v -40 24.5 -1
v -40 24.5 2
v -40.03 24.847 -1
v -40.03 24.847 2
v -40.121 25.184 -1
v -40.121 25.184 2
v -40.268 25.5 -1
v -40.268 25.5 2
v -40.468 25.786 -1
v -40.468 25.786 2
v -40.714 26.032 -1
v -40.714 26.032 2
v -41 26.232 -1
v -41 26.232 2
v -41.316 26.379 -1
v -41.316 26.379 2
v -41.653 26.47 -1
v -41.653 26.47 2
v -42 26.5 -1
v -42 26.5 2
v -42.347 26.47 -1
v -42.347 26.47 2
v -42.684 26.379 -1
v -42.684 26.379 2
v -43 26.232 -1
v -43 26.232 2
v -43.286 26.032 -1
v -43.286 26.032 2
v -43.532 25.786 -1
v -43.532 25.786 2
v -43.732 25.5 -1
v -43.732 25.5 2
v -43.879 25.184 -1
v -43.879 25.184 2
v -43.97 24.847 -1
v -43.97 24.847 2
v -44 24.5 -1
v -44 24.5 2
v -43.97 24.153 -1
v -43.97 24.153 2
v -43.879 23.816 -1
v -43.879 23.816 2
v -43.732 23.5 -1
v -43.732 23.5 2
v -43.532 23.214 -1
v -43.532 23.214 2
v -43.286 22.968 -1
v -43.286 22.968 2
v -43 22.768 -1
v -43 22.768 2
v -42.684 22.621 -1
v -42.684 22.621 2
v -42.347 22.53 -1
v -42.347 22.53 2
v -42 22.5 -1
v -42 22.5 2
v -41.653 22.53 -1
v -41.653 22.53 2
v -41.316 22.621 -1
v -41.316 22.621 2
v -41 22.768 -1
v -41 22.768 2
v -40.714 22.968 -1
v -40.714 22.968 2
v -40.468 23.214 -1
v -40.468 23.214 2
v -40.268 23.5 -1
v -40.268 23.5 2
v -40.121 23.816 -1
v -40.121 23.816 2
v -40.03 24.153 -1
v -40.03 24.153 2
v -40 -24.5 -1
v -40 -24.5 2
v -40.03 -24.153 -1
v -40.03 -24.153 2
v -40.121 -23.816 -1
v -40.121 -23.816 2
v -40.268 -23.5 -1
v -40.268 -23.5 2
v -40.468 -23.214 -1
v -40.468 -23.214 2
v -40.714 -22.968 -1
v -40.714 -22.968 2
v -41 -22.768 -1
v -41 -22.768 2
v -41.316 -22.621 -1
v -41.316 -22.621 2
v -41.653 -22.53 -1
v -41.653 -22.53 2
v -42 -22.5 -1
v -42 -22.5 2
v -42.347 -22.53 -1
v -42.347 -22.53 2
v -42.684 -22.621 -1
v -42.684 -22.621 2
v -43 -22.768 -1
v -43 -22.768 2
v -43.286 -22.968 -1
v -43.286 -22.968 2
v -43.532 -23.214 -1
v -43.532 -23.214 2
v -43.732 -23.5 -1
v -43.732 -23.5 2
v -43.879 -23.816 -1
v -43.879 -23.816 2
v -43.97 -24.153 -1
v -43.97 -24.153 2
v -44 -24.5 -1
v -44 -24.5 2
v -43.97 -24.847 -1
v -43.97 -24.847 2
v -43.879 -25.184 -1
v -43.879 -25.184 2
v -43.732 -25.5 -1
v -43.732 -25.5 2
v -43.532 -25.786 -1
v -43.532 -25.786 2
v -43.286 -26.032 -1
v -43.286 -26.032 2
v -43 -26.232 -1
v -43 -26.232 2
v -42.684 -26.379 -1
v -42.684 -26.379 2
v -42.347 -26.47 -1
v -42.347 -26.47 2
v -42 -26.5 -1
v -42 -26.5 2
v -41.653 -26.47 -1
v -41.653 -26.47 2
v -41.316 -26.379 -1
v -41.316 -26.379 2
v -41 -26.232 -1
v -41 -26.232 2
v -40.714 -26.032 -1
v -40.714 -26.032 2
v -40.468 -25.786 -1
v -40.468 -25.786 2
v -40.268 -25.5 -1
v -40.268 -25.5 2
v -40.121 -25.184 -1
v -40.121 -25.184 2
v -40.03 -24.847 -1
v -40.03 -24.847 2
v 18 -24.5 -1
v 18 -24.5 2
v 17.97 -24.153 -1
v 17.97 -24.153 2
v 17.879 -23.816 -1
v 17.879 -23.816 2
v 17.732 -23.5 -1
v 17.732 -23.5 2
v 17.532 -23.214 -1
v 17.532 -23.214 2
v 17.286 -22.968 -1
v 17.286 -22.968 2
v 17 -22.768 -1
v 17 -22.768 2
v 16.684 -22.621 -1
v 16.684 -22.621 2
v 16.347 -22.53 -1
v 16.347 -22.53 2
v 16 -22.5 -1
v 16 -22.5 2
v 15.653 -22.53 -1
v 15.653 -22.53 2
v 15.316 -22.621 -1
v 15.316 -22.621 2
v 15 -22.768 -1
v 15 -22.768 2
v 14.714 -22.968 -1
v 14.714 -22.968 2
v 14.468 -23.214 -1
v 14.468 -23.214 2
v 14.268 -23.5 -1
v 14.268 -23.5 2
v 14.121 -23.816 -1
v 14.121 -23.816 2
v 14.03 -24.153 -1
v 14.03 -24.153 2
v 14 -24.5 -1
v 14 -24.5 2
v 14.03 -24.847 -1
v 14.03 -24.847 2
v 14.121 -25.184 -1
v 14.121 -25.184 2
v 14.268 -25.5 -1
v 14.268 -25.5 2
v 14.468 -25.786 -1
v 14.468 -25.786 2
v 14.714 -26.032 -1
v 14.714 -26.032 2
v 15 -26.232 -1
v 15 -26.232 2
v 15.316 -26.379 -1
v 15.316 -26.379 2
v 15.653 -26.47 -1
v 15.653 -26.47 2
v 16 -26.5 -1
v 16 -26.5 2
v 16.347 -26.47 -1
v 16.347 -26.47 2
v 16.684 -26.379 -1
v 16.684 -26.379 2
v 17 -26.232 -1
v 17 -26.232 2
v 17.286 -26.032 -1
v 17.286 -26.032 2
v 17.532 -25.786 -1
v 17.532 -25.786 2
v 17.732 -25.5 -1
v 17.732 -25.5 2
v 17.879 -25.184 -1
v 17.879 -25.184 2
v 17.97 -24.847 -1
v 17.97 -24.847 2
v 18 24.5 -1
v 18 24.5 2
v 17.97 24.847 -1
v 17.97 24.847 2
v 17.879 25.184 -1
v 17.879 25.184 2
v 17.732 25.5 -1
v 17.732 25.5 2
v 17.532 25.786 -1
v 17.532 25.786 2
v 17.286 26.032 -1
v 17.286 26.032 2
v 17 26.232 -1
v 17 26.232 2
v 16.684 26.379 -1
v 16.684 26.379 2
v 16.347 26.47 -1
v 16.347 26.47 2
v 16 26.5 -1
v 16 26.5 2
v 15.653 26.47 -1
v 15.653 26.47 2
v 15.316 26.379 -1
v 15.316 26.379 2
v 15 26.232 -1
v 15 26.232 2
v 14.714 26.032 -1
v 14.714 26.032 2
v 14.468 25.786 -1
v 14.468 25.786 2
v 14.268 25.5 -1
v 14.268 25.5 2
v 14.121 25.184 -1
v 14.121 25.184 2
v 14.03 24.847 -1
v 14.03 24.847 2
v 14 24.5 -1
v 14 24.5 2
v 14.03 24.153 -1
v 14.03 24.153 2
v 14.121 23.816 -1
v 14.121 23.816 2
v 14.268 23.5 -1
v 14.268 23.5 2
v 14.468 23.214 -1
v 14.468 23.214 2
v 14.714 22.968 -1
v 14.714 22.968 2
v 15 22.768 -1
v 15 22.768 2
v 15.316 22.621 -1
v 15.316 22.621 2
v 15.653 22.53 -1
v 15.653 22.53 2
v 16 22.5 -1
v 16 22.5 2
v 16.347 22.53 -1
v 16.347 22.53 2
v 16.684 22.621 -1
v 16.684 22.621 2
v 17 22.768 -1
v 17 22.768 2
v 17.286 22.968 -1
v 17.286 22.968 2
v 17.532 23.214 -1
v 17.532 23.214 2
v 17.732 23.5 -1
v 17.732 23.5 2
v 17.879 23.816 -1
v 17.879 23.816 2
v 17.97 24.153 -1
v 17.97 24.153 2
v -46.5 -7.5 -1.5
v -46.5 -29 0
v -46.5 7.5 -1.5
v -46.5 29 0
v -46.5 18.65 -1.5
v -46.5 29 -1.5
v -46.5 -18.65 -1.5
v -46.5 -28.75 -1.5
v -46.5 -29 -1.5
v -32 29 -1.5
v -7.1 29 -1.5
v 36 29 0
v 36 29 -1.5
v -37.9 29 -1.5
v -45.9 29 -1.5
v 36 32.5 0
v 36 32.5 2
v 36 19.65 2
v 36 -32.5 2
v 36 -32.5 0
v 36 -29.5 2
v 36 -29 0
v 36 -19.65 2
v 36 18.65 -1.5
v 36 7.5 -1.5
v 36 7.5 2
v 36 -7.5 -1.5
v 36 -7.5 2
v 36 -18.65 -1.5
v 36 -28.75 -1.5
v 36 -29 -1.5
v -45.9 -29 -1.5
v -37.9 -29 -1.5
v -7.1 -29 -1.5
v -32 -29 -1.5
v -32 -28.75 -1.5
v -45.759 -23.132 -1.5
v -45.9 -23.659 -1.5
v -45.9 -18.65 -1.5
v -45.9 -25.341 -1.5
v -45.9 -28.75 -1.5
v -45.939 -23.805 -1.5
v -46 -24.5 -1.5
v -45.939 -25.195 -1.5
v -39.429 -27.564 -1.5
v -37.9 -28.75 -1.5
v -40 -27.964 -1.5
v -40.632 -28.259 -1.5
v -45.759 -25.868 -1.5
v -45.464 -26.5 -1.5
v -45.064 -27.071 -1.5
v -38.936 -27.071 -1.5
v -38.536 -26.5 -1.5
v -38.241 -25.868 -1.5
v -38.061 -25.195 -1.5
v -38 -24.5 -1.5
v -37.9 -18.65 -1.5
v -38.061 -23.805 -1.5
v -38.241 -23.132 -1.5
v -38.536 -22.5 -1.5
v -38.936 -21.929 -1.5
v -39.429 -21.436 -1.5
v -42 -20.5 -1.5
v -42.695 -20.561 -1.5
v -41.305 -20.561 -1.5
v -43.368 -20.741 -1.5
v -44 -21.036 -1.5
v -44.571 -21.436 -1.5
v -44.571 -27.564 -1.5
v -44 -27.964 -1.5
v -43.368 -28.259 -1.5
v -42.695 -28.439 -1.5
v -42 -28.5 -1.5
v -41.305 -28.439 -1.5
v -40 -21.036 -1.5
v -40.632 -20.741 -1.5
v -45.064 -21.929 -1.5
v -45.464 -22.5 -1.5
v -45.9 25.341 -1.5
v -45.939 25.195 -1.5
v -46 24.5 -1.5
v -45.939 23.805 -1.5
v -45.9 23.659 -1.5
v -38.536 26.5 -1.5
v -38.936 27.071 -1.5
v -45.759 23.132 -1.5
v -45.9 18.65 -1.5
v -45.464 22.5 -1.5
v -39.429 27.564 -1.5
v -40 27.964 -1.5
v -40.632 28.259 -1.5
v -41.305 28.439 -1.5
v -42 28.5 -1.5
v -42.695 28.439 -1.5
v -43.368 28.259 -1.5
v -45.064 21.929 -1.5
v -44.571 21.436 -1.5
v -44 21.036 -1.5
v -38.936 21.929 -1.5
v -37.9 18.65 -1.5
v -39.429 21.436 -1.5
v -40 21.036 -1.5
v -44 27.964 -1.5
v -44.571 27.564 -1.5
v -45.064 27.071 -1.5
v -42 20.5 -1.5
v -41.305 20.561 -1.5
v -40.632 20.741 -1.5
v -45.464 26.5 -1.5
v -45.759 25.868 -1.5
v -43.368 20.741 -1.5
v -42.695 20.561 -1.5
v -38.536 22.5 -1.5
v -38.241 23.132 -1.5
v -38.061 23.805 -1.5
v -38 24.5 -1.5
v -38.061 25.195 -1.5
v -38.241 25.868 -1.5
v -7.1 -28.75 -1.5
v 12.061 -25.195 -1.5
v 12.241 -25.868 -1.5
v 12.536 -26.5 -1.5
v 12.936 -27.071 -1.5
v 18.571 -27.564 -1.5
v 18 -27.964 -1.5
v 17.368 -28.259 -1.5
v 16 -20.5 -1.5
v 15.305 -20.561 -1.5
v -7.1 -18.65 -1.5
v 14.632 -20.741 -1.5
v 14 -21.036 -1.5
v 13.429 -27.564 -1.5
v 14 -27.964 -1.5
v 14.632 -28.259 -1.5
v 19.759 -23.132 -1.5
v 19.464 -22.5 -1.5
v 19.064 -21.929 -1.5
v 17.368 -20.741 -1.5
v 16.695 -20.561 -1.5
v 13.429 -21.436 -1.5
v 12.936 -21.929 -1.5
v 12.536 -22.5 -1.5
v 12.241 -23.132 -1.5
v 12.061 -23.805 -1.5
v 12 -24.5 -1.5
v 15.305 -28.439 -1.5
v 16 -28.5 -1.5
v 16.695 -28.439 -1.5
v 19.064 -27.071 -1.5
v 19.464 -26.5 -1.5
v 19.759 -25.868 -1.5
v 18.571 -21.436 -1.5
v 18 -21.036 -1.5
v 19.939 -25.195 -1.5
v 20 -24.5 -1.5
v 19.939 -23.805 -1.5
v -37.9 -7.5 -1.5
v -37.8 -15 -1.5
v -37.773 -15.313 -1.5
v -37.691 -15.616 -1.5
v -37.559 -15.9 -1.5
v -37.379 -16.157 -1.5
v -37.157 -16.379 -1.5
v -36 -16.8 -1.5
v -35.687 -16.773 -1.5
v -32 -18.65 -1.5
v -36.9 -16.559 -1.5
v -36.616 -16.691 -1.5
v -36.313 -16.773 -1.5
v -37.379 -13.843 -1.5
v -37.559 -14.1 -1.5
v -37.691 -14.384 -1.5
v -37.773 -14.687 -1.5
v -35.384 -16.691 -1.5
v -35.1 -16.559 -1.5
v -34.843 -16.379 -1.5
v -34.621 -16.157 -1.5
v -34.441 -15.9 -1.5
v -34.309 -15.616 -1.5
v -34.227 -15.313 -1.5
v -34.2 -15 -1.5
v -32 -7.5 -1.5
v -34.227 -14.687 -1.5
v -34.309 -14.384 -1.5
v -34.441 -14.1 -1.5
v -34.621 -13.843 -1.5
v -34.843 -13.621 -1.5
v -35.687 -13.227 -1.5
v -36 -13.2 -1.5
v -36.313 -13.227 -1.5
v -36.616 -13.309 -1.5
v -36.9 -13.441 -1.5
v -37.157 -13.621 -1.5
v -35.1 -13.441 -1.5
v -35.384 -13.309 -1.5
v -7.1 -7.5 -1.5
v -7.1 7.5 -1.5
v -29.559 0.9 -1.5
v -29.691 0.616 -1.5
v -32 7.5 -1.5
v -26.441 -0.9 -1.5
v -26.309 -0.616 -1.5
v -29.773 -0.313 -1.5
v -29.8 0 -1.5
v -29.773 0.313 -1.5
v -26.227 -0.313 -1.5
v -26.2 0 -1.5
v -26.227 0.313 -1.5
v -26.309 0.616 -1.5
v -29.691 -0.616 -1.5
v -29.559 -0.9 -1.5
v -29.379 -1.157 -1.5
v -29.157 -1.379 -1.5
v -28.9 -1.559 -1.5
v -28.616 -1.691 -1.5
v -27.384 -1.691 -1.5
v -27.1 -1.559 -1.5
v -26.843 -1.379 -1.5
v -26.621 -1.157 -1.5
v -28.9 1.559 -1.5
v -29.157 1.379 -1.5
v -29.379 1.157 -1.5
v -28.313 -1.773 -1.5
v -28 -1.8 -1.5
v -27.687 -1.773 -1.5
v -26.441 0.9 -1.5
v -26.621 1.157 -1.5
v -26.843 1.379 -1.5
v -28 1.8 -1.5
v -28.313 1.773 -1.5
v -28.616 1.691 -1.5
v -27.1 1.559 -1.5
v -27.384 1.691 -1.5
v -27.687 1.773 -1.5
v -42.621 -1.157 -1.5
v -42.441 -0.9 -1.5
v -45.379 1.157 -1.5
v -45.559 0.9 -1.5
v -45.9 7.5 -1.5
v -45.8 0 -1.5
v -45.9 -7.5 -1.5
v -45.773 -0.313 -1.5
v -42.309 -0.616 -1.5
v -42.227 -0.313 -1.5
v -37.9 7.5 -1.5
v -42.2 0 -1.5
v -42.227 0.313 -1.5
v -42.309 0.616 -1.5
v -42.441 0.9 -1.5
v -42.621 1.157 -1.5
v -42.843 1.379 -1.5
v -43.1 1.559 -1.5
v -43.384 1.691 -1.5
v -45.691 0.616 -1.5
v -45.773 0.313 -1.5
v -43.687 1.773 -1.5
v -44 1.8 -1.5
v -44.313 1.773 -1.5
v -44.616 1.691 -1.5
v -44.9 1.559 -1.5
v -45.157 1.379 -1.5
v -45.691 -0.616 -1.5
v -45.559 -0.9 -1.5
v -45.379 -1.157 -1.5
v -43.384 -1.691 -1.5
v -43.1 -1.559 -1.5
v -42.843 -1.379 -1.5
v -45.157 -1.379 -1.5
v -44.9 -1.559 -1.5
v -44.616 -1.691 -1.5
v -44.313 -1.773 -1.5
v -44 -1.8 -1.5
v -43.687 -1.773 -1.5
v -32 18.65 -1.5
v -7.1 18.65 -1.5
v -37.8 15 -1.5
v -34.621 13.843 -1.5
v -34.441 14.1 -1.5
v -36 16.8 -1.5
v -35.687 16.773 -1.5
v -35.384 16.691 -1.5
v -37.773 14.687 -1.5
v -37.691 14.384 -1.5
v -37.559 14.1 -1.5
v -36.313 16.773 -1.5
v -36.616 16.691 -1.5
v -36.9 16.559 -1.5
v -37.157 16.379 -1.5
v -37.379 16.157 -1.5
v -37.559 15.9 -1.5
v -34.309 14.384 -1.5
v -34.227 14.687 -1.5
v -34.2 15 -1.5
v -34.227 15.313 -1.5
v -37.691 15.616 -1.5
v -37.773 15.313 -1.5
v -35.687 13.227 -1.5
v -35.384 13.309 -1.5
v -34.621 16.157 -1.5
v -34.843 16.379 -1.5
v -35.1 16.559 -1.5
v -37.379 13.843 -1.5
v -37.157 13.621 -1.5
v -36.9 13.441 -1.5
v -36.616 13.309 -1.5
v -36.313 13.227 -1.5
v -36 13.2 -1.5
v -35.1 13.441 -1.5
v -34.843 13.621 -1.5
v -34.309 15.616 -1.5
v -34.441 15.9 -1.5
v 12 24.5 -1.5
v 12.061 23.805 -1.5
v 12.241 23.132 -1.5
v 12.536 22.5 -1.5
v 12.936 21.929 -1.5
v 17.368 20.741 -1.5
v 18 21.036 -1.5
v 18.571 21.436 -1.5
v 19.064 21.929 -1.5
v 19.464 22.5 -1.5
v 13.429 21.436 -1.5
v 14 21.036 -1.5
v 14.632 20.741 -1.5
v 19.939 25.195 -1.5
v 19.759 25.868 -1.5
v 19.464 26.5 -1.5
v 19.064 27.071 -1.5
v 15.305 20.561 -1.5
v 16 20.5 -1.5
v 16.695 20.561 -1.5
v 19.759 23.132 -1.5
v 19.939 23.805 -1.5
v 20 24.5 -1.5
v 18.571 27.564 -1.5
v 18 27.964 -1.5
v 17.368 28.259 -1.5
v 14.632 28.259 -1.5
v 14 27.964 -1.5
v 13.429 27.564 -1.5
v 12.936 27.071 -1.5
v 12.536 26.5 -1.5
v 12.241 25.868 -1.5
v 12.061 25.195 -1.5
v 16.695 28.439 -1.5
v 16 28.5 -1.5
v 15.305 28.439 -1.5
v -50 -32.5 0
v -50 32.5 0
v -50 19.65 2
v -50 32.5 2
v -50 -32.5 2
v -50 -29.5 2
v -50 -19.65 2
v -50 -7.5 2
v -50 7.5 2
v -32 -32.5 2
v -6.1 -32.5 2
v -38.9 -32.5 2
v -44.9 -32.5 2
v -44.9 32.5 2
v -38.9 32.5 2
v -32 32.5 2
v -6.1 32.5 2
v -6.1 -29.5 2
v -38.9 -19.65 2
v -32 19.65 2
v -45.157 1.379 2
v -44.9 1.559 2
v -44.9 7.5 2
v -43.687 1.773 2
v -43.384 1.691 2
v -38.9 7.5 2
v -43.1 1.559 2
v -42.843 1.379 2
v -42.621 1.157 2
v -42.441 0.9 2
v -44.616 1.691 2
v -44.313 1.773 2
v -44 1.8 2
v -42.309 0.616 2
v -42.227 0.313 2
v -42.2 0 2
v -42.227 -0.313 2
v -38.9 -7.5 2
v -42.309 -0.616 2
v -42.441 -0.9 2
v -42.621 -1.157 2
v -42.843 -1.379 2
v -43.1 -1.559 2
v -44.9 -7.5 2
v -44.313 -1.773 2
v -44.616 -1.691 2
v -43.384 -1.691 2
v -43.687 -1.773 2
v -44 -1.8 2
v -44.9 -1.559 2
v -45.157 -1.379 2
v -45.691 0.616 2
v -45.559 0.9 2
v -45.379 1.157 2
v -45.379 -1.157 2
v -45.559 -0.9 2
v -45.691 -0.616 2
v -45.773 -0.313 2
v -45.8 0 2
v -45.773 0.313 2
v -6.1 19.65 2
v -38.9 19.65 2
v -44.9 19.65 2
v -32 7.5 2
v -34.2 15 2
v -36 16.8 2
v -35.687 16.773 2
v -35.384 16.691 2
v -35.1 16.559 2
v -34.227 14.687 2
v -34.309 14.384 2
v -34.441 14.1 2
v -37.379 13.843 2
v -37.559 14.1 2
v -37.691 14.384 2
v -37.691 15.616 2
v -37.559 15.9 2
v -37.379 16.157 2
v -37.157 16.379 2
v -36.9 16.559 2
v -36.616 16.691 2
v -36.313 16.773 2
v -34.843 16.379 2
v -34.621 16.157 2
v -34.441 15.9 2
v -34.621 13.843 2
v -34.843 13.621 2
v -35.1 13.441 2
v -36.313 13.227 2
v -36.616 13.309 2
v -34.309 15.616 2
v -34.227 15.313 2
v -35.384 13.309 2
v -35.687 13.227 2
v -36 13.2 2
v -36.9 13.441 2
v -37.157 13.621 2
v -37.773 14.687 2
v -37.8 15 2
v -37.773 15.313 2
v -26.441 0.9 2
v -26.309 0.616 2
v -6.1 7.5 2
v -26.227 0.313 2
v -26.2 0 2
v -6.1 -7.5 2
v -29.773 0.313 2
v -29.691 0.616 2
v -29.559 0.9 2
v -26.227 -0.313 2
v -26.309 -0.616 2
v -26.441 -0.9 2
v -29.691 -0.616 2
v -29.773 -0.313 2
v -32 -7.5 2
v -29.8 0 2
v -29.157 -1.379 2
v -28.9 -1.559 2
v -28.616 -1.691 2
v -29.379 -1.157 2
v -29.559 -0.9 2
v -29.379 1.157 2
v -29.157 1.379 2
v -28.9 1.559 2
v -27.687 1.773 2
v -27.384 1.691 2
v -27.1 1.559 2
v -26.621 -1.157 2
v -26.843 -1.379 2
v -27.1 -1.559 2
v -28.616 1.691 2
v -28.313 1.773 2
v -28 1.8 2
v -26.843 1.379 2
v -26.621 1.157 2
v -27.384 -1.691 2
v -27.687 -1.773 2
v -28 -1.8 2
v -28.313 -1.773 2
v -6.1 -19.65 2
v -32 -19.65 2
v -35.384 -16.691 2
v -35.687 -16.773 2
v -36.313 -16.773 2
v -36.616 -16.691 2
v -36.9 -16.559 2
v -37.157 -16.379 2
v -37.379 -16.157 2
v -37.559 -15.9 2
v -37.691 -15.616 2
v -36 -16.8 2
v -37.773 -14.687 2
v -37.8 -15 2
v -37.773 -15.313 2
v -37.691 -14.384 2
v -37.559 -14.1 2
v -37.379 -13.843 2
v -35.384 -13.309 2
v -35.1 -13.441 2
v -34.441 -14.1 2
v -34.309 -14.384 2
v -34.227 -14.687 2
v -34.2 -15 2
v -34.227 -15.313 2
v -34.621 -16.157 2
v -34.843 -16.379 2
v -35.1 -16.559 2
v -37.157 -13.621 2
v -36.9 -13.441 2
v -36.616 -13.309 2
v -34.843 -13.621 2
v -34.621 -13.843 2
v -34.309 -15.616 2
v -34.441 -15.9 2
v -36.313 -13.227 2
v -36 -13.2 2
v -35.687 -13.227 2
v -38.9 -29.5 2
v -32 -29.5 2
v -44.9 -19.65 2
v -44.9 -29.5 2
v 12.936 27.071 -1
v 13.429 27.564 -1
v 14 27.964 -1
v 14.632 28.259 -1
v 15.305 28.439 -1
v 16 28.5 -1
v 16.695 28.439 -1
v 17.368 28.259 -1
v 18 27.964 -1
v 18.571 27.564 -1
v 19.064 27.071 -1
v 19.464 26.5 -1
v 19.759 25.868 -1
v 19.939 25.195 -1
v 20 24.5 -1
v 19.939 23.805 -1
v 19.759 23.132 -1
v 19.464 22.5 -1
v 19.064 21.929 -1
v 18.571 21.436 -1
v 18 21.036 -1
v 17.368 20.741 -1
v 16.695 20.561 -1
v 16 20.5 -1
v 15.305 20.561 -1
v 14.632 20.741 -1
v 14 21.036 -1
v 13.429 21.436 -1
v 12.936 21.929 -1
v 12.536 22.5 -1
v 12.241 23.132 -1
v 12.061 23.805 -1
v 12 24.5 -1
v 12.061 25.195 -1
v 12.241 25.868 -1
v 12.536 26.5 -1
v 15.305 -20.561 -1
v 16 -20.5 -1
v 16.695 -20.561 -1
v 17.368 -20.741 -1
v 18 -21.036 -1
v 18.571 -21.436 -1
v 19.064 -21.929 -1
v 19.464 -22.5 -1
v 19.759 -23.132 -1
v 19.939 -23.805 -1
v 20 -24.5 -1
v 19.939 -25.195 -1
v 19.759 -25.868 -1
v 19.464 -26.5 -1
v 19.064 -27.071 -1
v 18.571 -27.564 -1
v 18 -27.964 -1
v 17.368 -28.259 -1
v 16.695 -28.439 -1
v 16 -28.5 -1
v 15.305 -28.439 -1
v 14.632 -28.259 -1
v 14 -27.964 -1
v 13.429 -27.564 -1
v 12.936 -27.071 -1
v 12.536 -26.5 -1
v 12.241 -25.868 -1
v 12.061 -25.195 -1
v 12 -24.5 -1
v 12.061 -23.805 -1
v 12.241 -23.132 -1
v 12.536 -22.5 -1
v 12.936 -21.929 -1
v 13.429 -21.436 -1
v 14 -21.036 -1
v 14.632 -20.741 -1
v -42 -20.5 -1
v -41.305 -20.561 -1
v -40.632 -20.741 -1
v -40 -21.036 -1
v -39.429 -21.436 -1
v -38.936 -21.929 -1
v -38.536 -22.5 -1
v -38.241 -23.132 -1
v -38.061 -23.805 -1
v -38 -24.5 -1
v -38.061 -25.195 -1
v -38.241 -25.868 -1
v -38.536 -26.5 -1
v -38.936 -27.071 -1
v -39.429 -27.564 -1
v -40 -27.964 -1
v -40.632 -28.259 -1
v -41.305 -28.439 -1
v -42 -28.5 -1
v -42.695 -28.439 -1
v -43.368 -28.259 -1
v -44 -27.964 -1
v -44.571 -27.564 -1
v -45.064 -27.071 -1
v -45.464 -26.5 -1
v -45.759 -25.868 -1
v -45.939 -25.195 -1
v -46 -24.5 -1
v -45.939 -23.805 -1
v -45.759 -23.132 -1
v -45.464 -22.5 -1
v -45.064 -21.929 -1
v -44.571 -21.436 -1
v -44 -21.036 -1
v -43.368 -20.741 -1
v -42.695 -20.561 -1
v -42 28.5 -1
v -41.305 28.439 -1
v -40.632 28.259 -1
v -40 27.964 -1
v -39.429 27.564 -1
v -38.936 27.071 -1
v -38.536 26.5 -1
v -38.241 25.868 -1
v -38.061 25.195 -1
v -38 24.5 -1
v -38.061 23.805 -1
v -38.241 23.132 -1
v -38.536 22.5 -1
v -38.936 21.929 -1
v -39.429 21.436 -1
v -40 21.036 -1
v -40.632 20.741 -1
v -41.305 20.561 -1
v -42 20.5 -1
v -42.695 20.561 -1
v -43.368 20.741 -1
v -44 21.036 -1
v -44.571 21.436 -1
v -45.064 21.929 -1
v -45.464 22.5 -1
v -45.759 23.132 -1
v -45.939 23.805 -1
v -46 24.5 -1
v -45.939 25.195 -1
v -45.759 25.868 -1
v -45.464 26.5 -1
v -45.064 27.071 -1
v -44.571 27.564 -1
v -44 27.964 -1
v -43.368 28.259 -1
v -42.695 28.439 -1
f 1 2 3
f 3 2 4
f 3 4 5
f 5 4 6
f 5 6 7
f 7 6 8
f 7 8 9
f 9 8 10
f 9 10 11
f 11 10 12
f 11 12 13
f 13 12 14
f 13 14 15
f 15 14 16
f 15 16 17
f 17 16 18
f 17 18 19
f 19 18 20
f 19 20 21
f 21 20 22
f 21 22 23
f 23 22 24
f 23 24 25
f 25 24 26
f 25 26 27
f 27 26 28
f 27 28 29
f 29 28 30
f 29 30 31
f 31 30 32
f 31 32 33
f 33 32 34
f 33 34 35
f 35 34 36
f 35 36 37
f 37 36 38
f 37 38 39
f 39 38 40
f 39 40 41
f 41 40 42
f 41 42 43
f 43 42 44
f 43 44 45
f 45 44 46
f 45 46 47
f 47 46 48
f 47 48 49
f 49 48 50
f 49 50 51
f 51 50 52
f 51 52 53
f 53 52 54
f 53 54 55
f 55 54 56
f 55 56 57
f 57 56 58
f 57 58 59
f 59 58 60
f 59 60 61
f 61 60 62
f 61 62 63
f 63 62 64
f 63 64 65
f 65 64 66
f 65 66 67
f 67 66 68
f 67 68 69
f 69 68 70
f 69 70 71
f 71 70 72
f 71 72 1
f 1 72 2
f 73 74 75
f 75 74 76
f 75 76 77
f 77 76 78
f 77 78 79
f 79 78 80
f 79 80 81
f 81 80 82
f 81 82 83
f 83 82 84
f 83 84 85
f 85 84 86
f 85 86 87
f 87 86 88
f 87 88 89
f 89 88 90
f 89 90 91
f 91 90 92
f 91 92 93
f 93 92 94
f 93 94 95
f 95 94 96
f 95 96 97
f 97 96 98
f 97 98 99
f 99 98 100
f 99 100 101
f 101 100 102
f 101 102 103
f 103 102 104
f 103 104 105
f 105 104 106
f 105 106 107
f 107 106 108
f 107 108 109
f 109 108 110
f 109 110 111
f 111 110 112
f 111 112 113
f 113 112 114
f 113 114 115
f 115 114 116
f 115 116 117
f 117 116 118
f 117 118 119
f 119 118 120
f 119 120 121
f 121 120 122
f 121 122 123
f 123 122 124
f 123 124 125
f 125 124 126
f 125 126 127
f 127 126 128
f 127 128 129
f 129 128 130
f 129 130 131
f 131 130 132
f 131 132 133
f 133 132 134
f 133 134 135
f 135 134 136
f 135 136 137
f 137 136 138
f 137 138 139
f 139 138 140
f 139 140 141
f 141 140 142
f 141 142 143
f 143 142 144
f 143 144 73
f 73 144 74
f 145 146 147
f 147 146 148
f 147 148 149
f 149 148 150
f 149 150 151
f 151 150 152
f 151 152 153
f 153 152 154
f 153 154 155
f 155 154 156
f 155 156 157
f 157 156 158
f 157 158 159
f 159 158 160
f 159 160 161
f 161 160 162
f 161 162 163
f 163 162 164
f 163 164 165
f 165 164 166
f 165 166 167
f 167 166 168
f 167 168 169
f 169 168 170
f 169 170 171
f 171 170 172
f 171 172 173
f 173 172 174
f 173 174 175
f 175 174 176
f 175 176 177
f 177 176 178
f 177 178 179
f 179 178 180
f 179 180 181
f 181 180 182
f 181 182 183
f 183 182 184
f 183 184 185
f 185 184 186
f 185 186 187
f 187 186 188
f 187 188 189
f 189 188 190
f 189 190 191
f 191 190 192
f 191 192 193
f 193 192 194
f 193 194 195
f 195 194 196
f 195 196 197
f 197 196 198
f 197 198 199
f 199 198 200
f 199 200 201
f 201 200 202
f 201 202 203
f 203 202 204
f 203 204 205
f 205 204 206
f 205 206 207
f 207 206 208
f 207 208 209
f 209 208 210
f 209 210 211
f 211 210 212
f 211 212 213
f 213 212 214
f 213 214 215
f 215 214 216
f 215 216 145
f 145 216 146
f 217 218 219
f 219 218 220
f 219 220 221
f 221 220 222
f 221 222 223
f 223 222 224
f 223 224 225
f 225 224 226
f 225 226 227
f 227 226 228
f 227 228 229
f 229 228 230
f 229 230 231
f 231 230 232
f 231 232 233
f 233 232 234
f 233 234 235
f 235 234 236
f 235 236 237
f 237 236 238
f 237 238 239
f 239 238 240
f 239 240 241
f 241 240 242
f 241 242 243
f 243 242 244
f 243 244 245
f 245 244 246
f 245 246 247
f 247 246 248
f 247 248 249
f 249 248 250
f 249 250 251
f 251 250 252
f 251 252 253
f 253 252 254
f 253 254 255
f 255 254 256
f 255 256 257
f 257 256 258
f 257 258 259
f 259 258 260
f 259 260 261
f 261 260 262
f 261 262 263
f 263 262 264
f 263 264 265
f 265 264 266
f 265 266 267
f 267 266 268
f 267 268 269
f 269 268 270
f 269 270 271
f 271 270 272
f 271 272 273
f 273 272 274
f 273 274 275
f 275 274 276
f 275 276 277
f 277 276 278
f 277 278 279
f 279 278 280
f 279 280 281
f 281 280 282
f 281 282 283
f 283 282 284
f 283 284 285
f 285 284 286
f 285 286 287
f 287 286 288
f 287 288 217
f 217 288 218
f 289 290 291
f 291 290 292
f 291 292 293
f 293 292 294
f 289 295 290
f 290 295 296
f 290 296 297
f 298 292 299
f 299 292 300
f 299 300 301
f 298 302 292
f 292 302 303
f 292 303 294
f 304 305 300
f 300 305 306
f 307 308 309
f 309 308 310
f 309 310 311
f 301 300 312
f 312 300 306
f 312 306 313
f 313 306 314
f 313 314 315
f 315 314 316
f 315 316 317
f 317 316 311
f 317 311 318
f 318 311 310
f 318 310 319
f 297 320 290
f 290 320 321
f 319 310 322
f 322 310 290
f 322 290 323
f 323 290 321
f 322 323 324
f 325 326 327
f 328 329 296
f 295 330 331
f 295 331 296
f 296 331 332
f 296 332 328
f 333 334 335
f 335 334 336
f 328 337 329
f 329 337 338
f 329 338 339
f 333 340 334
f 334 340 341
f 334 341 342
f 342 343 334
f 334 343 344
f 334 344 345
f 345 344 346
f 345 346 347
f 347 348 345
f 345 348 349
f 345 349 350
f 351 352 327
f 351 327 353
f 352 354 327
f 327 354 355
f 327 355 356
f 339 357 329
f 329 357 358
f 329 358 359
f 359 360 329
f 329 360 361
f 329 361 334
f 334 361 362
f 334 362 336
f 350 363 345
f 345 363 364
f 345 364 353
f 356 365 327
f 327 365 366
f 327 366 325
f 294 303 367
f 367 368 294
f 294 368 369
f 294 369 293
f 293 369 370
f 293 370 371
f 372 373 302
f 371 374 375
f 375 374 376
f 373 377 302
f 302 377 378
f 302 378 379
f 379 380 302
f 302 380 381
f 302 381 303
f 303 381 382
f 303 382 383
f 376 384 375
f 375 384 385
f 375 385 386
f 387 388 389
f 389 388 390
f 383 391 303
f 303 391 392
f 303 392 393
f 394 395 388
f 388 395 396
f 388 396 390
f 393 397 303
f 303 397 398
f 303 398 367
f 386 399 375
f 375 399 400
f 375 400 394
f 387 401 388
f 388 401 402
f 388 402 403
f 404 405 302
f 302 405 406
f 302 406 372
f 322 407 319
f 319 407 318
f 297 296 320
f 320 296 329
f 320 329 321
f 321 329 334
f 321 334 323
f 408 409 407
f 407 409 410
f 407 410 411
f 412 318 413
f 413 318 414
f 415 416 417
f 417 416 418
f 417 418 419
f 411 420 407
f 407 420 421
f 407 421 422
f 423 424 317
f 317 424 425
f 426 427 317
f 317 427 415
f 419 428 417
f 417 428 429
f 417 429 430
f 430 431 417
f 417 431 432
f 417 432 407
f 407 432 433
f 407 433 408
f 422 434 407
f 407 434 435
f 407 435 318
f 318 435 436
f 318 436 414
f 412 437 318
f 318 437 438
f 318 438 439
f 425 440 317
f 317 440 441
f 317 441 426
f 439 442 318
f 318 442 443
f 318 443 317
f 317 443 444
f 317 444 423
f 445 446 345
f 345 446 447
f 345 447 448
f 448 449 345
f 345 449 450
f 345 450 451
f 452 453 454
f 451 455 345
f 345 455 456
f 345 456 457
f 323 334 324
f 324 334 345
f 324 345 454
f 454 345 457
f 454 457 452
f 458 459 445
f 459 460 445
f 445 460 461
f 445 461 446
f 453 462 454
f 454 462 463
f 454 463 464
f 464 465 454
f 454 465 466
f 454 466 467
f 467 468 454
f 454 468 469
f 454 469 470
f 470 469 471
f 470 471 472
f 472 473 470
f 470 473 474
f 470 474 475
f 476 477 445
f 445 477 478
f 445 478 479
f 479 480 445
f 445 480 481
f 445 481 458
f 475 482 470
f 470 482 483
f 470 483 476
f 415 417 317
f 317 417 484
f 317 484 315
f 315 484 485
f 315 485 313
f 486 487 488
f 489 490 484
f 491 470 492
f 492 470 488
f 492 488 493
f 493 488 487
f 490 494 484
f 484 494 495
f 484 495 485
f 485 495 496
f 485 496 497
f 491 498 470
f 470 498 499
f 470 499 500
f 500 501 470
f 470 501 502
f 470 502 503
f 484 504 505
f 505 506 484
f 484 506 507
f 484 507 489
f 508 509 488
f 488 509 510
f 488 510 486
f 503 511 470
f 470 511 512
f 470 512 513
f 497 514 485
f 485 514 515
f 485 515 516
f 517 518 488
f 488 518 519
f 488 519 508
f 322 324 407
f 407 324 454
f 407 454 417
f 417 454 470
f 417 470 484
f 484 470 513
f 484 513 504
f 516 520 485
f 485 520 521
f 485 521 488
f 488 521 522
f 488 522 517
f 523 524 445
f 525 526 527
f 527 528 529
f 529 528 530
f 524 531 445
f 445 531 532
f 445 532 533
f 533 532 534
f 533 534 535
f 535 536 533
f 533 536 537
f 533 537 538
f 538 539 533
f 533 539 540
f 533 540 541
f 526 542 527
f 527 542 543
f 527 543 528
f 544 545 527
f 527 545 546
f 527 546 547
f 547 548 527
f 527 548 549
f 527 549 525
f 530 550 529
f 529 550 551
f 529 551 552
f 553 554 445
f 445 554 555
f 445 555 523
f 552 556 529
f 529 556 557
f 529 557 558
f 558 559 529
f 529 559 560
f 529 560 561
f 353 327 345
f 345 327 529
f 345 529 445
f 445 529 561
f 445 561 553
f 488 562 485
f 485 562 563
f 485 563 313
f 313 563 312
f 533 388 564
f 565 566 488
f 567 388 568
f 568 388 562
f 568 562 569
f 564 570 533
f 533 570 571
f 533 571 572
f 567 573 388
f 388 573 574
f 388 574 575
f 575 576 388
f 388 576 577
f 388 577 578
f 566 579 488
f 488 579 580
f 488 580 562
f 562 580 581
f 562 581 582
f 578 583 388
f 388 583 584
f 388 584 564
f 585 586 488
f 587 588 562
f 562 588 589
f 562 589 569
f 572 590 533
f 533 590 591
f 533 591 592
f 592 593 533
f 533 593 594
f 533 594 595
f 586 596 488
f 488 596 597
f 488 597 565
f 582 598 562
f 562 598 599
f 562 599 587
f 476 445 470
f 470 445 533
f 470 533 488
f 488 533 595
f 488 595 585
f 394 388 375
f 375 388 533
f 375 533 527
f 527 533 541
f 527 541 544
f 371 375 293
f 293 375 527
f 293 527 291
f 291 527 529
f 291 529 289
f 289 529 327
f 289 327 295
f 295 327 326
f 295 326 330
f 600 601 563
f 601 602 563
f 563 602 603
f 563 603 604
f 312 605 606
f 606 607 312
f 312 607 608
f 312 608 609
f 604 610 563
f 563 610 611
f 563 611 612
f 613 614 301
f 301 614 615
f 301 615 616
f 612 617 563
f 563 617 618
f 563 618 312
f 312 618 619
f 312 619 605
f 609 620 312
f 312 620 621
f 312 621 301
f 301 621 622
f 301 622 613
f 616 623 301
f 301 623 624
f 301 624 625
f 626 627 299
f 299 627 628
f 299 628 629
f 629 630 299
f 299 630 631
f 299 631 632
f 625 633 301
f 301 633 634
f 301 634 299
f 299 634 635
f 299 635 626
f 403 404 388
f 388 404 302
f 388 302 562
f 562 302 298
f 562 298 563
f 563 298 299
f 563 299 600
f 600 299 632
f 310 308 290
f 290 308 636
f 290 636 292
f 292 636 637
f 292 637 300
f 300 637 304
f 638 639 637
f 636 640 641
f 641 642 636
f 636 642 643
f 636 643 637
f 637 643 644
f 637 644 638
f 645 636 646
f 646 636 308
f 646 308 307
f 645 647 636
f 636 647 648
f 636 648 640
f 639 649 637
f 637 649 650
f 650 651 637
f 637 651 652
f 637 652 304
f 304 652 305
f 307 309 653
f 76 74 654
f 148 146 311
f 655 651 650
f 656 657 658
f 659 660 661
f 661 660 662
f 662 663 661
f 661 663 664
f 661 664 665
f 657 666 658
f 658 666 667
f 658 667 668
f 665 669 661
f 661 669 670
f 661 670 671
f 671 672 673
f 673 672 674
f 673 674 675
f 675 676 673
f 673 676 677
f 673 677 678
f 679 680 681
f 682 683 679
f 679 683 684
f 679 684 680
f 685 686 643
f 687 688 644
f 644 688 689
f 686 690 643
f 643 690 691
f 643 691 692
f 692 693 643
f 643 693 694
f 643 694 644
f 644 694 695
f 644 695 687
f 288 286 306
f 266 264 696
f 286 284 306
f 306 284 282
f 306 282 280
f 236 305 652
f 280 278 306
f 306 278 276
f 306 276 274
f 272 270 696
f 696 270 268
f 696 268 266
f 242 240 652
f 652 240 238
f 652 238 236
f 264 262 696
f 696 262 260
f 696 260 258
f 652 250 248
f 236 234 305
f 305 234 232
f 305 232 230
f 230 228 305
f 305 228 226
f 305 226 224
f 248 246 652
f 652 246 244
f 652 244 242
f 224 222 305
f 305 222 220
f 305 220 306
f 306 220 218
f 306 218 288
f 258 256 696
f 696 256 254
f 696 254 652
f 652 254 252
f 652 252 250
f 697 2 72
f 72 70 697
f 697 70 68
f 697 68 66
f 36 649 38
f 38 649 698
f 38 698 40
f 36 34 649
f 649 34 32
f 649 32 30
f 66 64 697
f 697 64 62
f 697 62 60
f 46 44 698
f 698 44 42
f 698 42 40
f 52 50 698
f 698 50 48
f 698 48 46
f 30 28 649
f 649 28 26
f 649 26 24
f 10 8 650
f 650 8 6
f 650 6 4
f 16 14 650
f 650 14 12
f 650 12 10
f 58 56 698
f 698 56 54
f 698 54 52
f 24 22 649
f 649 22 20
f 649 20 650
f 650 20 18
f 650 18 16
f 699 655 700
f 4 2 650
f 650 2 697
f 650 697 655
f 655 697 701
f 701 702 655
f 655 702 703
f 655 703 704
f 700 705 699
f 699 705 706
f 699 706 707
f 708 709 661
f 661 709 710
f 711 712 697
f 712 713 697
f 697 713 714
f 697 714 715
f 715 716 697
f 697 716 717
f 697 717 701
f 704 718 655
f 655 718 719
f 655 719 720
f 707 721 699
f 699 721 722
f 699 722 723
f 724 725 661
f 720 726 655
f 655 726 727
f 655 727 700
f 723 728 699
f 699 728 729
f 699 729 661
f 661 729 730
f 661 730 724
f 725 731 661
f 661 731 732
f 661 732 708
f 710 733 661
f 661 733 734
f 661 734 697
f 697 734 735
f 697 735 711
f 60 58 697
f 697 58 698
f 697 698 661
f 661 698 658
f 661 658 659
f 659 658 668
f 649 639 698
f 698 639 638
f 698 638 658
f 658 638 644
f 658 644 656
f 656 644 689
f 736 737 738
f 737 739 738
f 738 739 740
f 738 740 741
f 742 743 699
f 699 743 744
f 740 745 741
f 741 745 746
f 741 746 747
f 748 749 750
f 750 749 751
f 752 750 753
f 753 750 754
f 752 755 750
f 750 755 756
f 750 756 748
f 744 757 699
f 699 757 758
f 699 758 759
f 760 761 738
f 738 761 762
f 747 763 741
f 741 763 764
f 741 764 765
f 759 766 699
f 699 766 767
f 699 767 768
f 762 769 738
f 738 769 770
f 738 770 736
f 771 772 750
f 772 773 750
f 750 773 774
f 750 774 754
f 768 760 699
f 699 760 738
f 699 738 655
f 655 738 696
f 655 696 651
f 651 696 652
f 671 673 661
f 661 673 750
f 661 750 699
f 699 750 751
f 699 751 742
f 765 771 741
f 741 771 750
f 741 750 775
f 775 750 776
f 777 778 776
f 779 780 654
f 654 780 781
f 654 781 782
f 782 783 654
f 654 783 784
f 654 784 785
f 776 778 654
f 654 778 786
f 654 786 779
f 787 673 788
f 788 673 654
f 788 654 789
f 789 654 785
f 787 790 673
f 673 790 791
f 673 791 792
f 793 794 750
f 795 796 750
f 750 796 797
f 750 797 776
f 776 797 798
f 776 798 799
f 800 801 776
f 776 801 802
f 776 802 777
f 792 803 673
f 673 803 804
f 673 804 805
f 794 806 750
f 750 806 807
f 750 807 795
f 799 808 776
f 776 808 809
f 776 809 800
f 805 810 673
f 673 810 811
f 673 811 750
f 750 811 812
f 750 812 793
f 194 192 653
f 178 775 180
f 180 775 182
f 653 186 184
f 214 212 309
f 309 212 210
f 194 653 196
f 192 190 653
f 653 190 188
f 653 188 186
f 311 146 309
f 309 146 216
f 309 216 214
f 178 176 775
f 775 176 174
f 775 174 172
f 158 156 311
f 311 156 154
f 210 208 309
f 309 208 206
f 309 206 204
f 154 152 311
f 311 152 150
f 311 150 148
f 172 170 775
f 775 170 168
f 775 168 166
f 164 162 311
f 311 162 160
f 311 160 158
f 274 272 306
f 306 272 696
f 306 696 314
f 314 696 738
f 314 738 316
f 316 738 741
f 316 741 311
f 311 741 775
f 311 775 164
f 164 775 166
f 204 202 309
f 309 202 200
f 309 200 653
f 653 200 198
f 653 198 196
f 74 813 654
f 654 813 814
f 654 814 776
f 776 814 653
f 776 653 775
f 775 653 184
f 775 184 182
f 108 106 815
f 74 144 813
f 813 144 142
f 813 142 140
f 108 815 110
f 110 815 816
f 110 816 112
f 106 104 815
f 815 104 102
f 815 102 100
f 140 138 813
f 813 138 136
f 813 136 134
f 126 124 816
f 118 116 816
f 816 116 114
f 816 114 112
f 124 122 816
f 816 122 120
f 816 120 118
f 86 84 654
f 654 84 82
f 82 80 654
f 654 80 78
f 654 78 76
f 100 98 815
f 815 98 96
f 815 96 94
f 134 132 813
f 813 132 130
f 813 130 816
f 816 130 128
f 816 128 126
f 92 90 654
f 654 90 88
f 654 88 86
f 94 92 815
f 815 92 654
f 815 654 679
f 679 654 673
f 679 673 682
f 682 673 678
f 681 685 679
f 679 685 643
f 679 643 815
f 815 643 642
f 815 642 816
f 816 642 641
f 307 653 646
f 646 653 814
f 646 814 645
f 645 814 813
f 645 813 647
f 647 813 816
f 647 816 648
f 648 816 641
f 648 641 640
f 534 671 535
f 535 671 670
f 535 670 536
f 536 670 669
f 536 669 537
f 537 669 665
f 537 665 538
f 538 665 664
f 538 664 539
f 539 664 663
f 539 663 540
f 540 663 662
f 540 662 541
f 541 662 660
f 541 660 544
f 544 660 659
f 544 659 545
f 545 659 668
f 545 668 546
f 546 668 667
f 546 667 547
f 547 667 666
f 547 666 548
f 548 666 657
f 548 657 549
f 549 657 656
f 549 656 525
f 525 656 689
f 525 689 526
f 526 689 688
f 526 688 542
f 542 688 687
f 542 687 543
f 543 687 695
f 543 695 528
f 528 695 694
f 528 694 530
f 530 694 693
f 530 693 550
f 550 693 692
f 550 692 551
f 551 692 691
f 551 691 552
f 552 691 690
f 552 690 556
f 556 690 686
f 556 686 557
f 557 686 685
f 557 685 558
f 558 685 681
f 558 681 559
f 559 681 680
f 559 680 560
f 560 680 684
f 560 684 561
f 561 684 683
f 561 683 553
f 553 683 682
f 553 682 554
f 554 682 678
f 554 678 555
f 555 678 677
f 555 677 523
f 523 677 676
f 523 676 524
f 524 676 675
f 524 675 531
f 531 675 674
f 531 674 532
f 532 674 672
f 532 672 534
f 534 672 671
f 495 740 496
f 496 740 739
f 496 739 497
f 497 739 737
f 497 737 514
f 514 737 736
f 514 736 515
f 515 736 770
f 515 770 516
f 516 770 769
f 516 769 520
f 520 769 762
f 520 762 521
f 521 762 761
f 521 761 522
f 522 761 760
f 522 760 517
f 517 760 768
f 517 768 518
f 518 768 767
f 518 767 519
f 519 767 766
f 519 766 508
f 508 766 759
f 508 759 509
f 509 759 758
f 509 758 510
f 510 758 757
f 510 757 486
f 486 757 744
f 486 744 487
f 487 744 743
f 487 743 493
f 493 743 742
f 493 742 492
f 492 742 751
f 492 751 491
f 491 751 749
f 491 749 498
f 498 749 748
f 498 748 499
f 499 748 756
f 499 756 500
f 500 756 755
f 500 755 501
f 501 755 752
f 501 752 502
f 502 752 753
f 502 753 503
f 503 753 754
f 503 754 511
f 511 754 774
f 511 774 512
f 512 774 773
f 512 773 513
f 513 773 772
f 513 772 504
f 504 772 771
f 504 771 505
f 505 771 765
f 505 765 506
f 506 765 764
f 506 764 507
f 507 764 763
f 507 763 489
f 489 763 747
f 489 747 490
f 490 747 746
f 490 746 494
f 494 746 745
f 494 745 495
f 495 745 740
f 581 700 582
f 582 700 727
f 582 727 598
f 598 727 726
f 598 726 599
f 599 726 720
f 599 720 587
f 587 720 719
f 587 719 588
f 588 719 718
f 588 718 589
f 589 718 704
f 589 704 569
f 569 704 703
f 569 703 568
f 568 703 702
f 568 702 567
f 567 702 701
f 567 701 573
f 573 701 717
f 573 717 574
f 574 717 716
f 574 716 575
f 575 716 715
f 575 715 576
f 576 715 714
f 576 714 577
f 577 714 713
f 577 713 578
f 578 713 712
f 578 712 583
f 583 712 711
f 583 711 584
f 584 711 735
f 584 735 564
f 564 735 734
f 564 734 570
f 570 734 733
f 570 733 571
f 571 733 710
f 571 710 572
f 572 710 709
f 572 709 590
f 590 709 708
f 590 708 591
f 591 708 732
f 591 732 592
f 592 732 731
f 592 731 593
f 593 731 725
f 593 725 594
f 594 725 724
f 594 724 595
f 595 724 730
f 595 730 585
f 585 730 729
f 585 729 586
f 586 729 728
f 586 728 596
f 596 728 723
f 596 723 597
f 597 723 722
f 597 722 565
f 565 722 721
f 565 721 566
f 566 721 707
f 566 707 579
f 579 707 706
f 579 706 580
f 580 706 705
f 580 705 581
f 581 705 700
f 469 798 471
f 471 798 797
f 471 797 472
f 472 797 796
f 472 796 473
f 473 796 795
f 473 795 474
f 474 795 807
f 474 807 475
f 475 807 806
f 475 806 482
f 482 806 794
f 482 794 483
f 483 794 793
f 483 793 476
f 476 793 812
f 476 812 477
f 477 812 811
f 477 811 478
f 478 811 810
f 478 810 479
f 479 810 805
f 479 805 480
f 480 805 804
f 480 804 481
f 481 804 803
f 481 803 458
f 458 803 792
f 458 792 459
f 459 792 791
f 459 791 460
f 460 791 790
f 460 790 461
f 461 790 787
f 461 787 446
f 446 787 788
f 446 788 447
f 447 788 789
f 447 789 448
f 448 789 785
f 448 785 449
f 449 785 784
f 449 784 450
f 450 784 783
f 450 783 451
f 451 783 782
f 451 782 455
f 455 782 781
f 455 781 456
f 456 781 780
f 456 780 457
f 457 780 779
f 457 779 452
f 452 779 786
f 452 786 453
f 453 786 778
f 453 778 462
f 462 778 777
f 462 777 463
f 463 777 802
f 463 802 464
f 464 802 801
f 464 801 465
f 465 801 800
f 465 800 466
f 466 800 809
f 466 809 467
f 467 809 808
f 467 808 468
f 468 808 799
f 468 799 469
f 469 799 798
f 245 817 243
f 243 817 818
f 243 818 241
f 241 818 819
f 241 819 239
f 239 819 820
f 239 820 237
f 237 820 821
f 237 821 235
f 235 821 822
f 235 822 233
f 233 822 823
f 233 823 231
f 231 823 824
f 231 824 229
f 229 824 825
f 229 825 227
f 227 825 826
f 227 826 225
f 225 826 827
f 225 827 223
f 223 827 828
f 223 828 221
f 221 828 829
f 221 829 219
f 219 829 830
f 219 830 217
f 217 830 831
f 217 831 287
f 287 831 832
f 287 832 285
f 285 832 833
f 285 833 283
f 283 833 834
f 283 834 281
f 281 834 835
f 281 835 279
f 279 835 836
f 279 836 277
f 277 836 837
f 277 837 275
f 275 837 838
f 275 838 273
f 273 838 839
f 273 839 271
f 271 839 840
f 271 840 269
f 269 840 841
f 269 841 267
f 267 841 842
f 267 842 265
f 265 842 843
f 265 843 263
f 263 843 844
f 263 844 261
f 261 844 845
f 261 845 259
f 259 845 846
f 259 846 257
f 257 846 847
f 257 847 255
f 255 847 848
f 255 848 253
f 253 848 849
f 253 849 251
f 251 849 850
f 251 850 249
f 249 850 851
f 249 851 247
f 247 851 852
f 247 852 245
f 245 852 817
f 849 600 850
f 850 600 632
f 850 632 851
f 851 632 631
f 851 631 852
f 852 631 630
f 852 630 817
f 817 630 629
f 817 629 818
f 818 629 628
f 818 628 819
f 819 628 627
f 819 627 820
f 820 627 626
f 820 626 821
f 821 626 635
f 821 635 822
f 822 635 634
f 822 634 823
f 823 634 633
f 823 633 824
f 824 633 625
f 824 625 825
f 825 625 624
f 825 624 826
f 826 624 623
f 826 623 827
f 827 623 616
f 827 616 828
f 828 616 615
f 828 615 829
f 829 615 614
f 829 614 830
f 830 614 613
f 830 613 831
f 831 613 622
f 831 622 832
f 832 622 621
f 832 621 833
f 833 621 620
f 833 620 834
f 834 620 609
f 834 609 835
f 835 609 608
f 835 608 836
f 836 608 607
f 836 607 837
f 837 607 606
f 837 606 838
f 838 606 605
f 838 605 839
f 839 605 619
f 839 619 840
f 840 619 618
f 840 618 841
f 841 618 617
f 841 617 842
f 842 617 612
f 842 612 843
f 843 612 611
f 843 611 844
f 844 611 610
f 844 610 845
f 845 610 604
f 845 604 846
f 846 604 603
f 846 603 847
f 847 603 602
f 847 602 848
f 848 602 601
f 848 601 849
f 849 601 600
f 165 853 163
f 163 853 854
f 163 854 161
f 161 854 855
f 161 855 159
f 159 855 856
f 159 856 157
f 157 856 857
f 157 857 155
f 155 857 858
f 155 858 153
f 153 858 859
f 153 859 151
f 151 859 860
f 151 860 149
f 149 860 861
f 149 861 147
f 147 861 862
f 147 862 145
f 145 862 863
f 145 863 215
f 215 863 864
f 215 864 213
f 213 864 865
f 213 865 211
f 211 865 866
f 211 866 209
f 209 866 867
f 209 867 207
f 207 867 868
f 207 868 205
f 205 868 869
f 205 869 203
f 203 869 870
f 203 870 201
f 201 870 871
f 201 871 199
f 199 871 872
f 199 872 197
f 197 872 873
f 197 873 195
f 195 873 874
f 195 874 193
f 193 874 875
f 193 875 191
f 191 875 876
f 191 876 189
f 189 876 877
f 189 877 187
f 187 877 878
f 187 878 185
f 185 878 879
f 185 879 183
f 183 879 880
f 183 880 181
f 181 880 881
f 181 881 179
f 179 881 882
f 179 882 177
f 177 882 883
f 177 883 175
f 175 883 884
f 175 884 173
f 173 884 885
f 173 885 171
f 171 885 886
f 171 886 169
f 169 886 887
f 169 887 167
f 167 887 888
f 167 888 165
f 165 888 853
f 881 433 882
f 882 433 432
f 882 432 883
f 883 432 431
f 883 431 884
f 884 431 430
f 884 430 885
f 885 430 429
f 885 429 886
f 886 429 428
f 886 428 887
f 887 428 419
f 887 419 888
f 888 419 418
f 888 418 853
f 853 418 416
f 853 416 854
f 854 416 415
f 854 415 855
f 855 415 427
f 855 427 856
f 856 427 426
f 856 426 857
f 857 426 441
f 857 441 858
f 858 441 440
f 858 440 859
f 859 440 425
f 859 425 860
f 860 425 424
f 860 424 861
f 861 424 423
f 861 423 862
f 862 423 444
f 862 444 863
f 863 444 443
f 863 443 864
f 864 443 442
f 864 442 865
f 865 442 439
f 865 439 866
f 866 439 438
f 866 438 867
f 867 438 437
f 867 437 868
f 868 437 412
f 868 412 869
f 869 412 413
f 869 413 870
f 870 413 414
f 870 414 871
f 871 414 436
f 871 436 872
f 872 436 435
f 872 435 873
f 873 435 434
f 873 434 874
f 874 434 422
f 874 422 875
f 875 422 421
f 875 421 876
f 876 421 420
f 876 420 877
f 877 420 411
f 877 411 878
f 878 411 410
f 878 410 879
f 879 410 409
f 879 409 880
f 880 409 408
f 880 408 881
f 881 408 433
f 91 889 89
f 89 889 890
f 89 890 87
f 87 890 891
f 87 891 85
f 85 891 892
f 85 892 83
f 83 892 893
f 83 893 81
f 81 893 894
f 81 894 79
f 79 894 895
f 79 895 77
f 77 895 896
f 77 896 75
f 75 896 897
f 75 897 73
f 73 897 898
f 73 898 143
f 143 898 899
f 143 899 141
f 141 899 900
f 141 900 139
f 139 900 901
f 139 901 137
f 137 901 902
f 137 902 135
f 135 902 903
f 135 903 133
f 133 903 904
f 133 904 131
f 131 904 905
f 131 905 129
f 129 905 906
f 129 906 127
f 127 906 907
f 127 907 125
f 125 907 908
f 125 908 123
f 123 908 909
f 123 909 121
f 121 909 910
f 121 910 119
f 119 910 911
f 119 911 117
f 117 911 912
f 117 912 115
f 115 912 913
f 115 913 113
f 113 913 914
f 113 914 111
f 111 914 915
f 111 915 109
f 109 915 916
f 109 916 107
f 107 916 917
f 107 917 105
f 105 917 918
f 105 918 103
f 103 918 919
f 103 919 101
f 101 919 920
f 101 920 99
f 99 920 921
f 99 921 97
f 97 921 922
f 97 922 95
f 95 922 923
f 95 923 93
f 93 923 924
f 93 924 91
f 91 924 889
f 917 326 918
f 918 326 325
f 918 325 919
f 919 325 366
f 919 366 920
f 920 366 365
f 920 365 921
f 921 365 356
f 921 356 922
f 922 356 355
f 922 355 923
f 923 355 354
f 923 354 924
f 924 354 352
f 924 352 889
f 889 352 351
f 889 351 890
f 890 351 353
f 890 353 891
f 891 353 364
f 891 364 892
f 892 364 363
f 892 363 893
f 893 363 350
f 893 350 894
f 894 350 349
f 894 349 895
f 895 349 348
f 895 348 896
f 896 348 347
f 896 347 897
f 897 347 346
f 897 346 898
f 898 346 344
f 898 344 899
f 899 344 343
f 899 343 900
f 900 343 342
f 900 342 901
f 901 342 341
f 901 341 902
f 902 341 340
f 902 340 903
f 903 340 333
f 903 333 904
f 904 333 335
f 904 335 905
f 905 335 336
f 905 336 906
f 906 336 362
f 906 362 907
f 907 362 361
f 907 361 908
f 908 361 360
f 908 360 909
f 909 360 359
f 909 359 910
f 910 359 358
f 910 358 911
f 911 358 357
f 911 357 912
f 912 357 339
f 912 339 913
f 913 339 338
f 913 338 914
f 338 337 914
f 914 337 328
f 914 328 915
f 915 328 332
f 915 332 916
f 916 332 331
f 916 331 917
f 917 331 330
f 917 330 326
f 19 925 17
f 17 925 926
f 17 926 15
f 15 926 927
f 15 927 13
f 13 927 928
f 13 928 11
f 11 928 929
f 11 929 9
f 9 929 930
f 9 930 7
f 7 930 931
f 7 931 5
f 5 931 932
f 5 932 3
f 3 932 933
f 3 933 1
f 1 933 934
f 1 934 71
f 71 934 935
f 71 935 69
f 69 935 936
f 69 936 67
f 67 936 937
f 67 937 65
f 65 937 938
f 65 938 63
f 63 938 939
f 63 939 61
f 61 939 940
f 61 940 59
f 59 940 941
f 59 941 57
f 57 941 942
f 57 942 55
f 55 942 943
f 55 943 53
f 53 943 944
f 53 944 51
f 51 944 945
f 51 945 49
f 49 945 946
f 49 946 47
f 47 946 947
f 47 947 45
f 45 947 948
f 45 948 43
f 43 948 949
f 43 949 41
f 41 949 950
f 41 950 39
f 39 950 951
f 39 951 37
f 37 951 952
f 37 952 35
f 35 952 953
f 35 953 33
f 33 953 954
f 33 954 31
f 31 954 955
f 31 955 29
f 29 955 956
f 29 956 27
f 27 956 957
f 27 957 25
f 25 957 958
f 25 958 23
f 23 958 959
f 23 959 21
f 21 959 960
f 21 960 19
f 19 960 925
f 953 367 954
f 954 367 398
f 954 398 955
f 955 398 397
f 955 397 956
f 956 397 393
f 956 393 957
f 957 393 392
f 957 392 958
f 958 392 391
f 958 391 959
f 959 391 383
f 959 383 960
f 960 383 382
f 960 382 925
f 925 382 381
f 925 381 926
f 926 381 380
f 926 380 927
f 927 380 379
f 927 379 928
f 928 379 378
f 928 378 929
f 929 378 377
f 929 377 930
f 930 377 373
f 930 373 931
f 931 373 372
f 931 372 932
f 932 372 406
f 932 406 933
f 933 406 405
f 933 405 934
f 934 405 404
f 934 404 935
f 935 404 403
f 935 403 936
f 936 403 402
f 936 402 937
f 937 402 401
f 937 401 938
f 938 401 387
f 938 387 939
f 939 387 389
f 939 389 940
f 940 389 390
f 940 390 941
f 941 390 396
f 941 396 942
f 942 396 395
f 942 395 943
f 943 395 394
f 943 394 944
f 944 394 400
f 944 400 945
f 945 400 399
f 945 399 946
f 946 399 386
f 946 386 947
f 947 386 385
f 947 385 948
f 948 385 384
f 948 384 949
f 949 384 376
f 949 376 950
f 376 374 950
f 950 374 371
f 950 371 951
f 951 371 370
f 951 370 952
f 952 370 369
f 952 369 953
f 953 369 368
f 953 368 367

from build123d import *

# Parameters (mm, degrees)
SKETCH1_W           = 82.5
SKETCH1_H           = 58
BOSS_EXTRUDE1_DEPTH = 1.5
SKETCH2_W           = 86
SKETCH2_H           = 65
BOSS_EXTRUDE2_DEPTH = 2
SKETCH3_R           = 2
CUT_EXTRUDE1_DEPTH  = 60.736923255
SKETCH4_R           = 1.8
CUT_EXTRUDE2_DEPTH  = 60.736923255
SKETCH5_R           = 4
CUT_EXTRUDE3_DEPTH  = 0.5


with BuildPart() as part:
    # Sketch1 → Boss-Extrude1 (new body)
    with BuildSketch(Plane.XY):
        with Locations((-5.25, 0)):
            Rectangle(SKETCH1_W, SKETCH1_H)
    extrude(amount=-BOSS_EXTRUDE1_DEPTH)

    # Sketch2 → Boss-Extrude2 (add)
    with BuildSketch(Plane.XY):
        with Locations((-7, 0)):
            Rectangle(SKETCH2_W, SKETCH2_H)
    extrude(amount=BOSS_EXTRUDE2_DEPTH)

    # Sketch3 → Cut-Extrude1 (cut, through all)
    with BuildSketch(Plane.XY.offset(2)):
        with Locations((-42, 24.5)):
            Circle(SKETCH3_R)
        with Locations((16, 24.5)):
            Circle(SKETCH3_R)
        with Locations((16, -24.5)):
            Circle(SKETCH3_R)
        with Locations((-42, -24.5)):
            Circle(SKETCH3_R)
    extrude(amount=-CUT_EXTRUDE1_DEPTH, mode=Mode.SUBTRACT)

    # Sketch4 → Cut-Extrude2 (cut, through all)
    with BuildSketch(Plane.XY.offset(2)):
        with Locations((-44, 0)):
            Circle(SKETCH4_R)
        with Locations((-28, 0)):
            Circle(SKETCH4_R)
        with Locations((-36, 15)):
            Circle(SKETCH4_R)
        with Locations((-36, -15)):
            Circle(SKETCH4_R)
    extrude(amount=-CUT_EXTRUDE2_DEPTH, mode=Mode.SUBTRACT)

    # Sketch5 → Cut-Extrude3 (cut)
    with BuildSketch(Plane(origin=(0, 0, -1.5), x_dir=(-1, 0, 0), z_dir=(0, 0, -1))):
        with Locations((-16, 24.5)):
            Circle(SKETCH5_R)
        with Locations((-16, -24.5)):
            Circle(SKETCH5_R)
        with Locations((42, -24.5)):
            Circle(SKETCH5_R)
        with Locations((42, 24.5)):
            Circle(SKETCH5_R)
    extrude(amount=-CUT_EXTRUDE3_DEPTH, mode=Mode.SUBTRACT)


solid = part.part
